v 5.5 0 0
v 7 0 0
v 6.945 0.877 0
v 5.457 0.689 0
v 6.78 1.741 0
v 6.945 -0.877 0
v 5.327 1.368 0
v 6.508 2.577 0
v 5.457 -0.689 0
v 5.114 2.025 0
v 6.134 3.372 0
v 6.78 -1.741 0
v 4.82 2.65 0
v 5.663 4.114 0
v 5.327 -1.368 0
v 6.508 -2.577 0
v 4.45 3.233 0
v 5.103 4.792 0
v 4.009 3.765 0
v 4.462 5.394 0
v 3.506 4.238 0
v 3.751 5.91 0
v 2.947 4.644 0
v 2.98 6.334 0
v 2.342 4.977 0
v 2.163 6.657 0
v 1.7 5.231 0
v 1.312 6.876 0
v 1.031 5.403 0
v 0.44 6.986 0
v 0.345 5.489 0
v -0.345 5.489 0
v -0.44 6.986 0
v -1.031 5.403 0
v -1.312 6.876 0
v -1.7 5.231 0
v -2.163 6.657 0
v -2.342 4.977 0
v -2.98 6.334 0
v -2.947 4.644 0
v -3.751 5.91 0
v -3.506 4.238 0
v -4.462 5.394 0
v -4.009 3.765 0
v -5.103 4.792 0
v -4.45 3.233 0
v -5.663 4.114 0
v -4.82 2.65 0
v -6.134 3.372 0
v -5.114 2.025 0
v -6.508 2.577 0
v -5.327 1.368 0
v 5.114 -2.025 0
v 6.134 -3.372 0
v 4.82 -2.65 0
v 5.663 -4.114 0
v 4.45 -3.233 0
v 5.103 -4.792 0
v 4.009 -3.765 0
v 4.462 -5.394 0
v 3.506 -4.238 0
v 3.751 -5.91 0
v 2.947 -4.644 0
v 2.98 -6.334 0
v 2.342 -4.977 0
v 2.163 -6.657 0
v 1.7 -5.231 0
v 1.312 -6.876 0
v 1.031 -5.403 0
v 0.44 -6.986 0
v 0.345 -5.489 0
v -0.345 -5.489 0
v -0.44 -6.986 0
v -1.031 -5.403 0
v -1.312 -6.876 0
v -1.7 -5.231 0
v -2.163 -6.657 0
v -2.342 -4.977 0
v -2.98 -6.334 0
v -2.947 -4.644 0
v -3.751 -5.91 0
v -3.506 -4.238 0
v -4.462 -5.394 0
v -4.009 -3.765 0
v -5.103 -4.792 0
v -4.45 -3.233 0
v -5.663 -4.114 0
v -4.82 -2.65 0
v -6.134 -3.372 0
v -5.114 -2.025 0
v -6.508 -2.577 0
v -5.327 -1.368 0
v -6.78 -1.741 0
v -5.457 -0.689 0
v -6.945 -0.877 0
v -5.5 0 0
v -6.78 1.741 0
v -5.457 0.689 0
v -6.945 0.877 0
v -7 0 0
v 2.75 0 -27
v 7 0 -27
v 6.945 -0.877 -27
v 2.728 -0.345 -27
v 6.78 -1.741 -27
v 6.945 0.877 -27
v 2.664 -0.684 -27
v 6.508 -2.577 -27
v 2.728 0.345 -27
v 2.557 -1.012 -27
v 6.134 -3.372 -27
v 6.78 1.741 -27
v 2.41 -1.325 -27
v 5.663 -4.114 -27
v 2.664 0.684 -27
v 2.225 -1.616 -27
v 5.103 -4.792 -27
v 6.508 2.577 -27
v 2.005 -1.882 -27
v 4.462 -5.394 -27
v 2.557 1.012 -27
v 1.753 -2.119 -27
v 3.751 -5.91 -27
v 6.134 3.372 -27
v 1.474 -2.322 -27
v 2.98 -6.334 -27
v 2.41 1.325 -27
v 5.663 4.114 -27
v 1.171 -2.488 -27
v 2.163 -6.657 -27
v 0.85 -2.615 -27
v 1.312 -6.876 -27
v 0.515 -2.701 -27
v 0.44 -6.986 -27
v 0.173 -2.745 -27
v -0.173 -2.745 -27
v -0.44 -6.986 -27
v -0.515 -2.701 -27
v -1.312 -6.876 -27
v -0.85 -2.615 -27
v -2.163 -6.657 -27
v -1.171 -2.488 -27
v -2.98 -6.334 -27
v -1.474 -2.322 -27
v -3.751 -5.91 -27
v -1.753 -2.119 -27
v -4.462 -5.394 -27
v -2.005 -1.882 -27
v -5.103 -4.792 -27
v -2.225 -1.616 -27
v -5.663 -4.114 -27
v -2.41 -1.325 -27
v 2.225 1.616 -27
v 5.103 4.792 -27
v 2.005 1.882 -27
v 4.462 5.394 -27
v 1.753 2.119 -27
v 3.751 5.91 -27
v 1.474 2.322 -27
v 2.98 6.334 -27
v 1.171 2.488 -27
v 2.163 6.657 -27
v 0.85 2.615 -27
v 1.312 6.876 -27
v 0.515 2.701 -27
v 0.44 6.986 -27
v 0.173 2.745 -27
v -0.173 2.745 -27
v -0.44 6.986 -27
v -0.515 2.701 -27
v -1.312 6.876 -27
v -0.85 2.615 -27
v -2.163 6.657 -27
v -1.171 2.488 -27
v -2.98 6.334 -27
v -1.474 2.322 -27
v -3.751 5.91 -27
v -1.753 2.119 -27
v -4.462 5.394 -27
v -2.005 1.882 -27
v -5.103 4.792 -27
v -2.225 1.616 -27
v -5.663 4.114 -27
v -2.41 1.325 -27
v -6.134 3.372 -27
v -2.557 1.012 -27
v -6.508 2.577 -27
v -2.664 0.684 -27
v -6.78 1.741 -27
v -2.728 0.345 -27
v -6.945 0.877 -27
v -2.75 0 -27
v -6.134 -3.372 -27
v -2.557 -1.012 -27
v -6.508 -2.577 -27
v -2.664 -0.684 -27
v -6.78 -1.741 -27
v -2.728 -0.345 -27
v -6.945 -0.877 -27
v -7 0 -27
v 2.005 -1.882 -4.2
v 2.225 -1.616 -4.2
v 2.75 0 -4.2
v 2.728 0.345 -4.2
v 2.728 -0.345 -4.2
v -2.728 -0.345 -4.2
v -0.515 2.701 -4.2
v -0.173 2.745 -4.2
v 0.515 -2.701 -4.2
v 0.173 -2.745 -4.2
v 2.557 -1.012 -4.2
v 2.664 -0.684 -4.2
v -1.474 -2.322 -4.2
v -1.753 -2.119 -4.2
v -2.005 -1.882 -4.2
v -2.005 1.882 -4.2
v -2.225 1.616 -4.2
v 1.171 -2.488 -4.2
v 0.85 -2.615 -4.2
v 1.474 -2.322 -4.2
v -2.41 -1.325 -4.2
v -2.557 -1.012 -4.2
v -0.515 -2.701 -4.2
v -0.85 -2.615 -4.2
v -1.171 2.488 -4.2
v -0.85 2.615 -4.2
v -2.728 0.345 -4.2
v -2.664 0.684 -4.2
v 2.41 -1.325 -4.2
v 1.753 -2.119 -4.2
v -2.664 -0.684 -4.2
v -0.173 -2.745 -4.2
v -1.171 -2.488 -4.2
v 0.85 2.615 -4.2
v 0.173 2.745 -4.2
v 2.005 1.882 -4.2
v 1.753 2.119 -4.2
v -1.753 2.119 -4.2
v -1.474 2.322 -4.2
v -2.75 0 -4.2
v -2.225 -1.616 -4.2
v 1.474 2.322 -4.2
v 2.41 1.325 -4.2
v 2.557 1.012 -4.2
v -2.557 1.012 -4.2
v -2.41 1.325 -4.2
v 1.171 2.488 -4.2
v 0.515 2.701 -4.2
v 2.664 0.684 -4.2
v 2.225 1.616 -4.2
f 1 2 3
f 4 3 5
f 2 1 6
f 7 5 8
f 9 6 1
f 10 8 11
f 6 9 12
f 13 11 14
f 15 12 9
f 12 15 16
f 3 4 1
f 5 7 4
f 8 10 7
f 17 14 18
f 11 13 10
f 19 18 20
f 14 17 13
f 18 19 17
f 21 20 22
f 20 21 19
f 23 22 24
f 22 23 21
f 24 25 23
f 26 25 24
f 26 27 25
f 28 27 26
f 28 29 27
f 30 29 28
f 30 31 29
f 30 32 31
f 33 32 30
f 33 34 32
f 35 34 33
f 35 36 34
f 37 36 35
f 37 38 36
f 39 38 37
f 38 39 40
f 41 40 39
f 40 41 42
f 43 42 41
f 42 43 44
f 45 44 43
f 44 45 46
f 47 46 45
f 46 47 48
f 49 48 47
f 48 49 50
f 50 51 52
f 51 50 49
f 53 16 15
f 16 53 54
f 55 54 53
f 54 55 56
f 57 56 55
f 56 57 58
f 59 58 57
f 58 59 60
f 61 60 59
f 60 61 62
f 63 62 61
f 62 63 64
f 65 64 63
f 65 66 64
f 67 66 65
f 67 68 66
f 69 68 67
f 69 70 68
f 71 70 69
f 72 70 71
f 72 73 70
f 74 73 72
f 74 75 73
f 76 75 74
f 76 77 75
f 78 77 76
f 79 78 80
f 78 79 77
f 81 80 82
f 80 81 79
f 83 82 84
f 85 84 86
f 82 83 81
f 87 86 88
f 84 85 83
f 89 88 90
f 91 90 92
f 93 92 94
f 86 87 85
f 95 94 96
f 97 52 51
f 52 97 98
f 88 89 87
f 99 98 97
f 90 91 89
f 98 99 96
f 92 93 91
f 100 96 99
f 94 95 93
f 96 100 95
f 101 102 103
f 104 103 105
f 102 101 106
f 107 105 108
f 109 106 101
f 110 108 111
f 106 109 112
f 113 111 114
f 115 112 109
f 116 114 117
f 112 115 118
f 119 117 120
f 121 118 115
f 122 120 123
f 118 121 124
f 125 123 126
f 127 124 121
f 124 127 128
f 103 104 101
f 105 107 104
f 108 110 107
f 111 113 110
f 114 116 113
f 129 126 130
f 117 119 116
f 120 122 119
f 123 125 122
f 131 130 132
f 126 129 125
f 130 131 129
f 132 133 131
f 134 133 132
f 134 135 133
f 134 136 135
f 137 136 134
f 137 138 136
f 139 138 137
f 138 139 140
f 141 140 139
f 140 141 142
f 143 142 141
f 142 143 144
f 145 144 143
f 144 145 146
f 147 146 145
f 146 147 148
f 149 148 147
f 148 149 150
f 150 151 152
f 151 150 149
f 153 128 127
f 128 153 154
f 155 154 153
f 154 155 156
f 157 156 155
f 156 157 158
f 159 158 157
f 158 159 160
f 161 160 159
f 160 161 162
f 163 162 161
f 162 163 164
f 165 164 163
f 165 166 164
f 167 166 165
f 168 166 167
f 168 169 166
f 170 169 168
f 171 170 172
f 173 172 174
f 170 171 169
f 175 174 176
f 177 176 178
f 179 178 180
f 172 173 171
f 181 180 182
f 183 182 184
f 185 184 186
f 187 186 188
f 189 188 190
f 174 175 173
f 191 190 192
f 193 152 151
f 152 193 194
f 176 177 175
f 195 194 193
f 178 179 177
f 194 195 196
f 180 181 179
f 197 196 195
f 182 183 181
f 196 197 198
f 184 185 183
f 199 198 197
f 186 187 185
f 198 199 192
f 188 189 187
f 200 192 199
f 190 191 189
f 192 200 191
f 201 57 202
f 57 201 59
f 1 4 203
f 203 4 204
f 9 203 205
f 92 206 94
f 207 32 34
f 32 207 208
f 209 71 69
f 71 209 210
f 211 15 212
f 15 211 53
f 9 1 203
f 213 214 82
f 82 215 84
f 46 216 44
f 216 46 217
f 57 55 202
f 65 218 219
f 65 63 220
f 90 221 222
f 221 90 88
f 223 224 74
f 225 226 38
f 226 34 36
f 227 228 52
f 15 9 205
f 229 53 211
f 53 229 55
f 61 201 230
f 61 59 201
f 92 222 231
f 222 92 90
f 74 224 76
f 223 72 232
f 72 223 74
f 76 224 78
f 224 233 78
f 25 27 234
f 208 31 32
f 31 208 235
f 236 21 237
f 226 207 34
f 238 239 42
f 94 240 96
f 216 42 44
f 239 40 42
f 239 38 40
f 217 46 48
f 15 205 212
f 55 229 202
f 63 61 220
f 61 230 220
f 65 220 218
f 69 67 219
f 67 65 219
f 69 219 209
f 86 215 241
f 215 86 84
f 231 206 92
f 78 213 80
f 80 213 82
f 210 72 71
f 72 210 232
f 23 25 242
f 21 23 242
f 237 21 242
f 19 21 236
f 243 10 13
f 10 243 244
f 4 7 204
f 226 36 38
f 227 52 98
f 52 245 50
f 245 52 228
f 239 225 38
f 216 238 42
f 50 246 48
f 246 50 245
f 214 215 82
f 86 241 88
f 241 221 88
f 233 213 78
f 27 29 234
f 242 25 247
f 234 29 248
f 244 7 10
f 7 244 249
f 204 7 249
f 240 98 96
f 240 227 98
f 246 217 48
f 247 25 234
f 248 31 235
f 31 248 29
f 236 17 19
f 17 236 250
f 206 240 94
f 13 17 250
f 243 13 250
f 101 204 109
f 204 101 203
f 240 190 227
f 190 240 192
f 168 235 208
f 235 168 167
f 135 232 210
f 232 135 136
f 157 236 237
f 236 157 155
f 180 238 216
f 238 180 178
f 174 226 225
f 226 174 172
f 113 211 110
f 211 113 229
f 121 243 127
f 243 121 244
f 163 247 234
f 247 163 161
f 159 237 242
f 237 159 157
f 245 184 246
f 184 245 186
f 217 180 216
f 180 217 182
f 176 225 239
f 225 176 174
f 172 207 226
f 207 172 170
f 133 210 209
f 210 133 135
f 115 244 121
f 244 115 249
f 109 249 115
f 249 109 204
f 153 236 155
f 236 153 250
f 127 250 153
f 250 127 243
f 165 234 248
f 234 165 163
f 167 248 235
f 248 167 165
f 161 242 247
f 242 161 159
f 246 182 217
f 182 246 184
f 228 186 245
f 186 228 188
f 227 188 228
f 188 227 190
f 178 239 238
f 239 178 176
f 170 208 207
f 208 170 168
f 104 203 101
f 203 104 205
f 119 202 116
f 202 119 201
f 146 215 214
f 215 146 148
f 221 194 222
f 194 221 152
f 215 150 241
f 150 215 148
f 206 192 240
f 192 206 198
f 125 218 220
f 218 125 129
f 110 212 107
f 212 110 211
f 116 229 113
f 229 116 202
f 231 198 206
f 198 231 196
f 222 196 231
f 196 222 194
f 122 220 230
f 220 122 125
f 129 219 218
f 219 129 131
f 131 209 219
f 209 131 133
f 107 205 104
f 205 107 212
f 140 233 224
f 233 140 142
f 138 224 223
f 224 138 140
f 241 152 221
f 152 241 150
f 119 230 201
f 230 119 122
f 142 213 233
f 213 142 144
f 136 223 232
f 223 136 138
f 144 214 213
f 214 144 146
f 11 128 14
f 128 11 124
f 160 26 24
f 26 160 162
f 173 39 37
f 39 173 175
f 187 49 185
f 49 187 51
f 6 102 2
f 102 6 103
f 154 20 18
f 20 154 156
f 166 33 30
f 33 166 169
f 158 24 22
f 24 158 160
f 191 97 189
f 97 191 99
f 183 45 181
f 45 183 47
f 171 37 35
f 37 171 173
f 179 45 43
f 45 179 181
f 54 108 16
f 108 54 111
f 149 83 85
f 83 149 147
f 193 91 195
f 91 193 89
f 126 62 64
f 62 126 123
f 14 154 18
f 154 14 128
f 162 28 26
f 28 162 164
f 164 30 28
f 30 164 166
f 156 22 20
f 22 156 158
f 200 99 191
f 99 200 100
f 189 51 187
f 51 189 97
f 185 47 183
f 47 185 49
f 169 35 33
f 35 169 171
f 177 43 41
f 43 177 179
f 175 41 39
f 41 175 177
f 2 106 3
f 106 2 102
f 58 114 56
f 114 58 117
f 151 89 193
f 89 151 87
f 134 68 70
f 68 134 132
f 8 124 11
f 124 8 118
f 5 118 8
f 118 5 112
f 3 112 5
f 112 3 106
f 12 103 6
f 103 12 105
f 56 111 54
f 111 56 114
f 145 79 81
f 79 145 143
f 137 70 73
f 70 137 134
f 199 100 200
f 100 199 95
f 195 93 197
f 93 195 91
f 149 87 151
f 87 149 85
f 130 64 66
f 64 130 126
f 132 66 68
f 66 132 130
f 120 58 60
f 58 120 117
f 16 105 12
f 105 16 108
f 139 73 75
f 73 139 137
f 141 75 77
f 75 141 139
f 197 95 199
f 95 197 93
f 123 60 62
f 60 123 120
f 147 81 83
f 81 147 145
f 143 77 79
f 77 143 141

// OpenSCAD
$fn = 50;


difference() {
	union() {
		translate(v = [0, 0, -27.0000000000]) {
			cylinder(h = 27, r = 7.0000000000);
		}
	}
	union() {
		translate(v = [0, 0, 0]) {
			rotate(a = [0, 0, 0]) {
				difference() {
					union() {
						#translate(v = [0, 0, -27.0000000000]) {
							cylinder(h = 27, r = 2.2500000000);
						}
						#translate(v = [0, 0, -4.2000000000]) {
							cylinder(h = 4.2000000000, r = 7.0000000000, r1 = 2.7500000000, r2 = 5.5000000000);
						}
						#translate(v = [0, 0, -27.0000000000]) {
							cylinder(h = 27, r = 2.7500000000);
						}
						#translate(v = [0, 0, -27.0000000000]) {
							cylinder(h = 27, r = 2.2500000000);
						}
					}
					union();
				}
			}
		}
	}
}
